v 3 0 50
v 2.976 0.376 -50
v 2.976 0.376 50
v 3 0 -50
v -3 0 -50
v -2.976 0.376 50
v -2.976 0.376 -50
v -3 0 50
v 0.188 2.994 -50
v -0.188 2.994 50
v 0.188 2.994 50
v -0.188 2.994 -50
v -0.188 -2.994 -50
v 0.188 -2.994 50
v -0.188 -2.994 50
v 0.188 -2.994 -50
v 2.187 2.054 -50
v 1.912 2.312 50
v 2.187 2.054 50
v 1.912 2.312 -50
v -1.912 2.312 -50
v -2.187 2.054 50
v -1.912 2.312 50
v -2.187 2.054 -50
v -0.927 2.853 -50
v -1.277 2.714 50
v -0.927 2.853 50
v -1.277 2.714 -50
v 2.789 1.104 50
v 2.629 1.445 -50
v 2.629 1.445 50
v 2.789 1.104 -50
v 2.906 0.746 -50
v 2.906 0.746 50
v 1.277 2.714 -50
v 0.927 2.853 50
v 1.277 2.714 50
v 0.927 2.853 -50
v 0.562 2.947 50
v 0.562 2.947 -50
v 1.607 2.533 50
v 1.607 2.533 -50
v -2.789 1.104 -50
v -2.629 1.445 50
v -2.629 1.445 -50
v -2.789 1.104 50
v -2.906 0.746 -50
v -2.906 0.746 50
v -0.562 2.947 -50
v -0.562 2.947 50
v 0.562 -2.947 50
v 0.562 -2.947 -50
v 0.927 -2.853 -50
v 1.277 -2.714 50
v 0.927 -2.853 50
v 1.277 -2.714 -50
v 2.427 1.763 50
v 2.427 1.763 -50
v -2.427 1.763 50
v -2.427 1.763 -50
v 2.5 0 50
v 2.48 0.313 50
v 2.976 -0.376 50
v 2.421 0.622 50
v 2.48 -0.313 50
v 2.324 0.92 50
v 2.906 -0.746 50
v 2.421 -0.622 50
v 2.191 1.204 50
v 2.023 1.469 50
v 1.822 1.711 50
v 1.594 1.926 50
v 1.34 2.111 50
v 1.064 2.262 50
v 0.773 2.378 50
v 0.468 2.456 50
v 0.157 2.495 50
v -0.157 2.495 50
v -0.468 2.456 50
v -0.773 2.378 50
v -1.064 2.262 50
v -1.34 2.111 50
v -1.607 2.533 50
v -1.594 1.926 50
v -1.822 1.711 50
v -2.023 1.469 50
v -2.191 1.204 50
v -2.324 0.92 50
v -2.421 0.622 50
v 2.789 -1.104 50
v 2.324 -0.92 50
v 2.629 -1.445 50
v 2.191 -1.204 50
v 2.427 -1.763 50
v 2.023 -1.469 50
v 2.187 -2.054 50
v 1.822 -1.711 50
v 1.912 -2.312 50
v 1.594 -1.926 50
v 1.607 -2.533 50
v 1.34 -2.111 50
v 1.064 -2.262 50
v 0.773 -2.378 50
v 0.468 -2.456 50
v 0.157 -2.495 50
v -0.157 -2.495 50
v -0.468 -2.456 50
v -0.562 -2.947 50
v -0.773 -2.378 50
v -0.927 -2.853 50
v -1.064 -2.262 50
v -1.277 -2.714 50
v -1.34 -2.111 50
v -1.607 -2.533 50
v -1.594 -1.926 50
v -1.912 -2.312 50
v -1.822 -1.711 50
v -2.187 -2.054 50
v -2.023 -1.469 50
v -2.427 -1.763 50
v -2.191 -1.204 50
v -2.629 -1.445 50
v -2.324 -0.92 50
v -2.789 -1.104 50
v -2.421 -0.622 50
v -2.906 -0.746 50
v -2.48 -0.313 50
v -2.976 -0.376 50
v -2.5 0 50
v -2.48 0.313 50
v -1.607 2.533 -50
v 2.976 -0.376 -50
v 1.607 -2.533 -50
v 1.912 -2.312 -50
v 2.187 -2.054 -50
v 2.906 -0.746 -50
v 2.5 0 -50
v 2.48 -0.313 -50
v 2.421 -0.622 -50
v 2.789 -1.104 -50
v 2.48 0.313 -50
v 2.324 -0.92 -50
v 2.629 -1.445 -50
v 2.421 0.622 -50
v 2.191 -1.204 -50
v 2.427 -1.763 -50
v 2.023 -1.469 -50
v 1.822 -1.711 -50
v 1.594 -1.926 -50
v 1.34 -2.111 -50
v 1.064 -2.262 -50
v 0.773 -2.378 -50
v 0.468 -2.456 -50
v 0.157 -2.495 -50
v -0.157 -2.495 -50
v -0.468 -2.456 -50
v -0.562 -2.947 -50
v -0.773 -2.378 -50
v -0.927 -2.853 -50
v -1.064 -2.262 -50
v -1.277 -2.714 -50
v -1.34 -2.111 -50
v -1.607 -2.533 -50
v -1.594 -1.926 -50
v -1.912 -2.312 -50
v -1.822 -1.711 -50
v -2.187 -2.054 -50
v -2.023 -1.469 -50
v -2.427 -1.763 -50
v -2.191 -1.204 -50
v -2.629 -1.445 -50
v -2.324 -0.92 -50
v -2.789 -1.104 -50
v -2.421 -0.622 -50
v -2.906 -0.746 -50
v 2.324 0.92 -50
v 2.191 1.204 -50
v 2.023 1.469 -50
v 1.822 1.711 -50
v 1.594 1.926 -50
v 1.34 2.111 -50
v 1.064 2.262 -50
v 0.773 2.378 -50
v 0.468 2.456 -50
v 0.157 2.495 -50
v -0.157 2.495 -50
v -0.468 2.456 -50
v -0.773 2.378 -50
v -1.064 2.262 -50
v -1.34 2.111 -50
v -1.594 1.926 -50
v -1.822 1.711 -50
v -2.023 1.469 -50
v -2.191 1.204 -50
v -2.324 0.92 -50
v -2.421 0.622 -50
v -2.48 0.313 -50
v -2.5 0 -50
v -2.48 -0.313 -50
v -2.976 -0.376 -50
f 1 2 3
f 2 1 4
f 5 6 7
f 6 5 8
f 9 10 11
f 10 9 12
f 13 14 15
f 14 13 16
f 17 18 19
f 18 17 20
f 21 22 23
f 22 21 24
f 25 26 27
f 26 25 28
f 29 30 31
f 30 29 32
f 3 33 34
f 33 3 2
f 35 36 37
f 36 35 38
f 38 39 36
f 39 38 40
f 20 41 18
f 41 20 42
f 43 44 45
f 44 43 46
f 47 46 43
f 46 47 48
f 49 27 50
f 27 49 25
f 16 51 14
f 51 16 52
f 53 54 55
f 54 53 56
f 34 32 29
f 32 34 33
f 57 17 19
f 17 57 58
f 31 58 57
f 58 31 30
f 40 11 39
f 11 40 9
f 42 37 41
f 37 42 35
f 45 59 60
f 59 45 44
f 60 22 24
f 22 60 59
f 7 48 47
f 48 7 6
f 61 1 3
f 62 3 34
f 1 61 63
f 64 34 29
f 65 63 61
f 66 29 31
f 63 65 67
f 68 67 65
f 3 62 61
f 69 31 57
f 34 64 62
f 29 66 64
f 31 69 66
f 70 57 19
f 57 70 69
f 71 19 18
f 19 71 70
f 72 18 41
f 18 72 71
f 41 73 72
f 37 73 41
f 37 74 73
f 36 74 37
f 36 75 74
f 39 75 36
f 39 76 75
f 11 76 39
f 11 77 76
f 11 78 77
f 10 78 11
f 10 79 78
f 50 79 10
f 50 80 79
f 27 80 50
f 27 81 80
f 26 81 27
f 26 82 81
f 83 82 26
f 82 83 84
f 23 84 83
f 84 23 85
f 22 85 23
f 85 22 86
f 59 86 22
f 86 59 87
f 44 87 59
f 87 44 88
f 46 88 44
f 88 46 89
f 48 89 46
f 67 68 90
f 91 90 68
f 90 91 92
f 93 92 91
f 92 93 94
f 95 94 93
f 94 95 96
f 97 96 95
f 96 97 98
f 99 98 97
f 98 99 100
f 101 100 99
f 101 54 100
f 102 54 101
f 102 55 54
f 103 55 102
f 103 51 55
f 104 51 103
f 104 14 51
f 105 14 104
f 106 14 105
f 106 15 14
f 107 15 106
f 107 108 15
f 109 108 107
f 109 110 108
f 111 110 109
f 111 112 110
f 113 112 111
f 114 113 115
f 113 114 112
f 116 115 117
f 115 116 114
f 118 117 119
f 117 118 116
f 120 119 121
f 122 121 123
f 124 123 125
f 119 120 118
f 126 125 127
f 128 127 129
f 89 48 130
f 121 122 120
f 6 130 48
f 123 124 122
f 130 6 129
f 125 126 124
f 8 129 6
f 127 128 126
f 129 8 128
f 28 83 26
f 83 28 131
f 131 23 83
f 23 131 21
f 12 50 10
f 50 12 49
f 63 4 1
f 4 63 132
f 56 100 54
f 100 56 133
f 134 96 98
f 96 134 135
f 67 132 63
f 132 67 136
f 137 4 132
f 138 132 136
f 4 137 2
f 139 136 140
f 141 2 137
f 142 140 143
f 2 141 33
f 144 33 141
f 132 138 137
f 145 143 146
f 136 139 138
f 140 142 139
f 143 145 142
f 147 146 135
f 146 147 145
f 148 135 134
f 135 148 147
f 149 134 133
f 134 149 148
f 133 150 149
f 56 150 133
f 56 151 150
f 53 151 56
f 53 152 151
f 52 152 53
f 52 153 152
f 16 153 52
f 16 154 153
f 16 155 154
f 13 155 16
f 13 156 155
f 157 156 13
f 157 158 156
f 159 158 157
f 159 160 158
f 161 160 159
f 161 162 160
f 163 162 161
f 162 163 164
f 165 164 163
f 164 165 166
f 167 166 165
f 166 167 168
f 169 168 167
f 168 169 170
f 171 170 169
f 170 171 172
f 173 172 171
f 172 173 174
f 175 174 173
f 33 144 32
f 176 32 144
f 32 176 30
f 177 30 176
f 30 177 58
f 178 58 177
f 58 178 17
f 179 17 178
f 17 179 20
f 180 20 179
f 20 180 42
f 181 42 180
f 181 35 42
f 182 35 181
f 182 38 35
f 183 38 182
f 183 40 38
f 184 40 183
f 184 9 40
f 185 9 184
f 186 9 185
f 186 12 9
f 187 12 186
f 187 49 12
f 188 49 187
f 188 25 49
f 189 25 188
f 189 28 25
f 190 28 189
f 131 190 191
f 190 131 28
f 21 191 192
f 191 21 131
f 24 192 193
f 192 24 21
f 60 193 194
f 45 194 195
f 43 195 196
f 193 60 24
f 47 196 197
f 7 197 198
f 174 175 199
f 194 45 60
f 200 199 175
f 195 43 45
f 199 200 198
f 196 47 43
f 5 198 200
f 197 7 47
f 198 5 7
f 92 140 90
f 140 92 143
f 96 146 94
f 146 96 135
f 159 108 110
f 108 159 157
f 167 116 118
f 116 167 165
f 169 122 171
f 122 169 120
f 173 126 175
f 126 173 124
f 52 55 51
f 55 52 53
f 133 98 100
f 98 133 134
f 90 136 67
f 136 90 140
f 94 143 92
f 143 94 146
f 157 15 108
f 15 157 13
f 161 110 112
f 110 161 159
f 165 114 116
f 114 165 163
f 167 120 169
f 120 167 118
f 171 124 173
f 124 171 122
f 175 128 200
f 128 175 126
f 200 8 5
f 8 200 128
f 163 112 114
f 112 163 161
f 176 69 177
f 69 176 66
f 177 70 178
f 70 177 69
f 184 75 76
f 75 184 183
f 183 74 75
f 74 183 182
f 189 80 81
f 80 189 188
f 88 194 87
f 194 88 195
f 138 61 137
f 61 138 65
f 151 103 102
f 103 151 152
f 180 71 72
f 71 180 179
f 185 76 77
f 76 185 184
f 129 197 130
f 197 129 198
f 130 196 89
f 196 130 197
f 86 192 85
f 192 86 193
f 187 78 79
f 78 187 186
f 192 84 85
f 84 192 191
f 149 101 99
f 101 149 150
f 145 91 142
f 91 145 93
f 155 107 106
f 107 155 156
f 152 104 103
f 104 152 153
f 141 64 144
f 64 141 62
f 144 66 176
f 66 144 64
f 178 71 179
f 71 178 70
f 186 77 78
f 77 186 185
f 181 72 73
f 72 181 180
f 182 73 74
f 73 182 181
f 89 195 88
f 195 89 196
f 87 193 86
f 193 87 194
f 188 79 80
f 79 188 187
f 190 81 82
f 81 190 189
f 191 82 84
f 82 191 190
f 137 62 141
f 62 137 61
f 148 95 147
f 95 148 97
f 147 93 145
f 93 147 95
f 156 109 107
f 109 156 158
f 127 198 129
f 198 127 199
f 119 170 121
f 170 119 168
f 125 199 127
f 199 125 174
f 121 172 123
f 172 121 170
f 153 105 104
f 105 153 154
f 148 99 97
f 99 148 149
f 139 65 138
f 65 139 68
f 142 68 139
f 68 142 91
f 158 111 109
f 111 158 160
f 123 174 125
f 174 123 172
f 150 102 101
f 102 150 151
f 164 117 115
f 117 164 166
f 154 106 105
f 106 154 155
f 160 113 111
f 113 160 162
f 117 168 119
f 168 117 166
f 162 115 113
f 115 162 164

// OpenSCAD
$fn = 50;


difference() {
	union() {
		translate(v = [0, 0, -50.0000000000]) {
			cylinder(h = 100, r = 3.0000000000);
		}
	}
	union() {
		translate(v = [0, 0, -100.0000000000]) {
			cylinder(h = 200, r = 2.5000000000);
		}
	}
}
